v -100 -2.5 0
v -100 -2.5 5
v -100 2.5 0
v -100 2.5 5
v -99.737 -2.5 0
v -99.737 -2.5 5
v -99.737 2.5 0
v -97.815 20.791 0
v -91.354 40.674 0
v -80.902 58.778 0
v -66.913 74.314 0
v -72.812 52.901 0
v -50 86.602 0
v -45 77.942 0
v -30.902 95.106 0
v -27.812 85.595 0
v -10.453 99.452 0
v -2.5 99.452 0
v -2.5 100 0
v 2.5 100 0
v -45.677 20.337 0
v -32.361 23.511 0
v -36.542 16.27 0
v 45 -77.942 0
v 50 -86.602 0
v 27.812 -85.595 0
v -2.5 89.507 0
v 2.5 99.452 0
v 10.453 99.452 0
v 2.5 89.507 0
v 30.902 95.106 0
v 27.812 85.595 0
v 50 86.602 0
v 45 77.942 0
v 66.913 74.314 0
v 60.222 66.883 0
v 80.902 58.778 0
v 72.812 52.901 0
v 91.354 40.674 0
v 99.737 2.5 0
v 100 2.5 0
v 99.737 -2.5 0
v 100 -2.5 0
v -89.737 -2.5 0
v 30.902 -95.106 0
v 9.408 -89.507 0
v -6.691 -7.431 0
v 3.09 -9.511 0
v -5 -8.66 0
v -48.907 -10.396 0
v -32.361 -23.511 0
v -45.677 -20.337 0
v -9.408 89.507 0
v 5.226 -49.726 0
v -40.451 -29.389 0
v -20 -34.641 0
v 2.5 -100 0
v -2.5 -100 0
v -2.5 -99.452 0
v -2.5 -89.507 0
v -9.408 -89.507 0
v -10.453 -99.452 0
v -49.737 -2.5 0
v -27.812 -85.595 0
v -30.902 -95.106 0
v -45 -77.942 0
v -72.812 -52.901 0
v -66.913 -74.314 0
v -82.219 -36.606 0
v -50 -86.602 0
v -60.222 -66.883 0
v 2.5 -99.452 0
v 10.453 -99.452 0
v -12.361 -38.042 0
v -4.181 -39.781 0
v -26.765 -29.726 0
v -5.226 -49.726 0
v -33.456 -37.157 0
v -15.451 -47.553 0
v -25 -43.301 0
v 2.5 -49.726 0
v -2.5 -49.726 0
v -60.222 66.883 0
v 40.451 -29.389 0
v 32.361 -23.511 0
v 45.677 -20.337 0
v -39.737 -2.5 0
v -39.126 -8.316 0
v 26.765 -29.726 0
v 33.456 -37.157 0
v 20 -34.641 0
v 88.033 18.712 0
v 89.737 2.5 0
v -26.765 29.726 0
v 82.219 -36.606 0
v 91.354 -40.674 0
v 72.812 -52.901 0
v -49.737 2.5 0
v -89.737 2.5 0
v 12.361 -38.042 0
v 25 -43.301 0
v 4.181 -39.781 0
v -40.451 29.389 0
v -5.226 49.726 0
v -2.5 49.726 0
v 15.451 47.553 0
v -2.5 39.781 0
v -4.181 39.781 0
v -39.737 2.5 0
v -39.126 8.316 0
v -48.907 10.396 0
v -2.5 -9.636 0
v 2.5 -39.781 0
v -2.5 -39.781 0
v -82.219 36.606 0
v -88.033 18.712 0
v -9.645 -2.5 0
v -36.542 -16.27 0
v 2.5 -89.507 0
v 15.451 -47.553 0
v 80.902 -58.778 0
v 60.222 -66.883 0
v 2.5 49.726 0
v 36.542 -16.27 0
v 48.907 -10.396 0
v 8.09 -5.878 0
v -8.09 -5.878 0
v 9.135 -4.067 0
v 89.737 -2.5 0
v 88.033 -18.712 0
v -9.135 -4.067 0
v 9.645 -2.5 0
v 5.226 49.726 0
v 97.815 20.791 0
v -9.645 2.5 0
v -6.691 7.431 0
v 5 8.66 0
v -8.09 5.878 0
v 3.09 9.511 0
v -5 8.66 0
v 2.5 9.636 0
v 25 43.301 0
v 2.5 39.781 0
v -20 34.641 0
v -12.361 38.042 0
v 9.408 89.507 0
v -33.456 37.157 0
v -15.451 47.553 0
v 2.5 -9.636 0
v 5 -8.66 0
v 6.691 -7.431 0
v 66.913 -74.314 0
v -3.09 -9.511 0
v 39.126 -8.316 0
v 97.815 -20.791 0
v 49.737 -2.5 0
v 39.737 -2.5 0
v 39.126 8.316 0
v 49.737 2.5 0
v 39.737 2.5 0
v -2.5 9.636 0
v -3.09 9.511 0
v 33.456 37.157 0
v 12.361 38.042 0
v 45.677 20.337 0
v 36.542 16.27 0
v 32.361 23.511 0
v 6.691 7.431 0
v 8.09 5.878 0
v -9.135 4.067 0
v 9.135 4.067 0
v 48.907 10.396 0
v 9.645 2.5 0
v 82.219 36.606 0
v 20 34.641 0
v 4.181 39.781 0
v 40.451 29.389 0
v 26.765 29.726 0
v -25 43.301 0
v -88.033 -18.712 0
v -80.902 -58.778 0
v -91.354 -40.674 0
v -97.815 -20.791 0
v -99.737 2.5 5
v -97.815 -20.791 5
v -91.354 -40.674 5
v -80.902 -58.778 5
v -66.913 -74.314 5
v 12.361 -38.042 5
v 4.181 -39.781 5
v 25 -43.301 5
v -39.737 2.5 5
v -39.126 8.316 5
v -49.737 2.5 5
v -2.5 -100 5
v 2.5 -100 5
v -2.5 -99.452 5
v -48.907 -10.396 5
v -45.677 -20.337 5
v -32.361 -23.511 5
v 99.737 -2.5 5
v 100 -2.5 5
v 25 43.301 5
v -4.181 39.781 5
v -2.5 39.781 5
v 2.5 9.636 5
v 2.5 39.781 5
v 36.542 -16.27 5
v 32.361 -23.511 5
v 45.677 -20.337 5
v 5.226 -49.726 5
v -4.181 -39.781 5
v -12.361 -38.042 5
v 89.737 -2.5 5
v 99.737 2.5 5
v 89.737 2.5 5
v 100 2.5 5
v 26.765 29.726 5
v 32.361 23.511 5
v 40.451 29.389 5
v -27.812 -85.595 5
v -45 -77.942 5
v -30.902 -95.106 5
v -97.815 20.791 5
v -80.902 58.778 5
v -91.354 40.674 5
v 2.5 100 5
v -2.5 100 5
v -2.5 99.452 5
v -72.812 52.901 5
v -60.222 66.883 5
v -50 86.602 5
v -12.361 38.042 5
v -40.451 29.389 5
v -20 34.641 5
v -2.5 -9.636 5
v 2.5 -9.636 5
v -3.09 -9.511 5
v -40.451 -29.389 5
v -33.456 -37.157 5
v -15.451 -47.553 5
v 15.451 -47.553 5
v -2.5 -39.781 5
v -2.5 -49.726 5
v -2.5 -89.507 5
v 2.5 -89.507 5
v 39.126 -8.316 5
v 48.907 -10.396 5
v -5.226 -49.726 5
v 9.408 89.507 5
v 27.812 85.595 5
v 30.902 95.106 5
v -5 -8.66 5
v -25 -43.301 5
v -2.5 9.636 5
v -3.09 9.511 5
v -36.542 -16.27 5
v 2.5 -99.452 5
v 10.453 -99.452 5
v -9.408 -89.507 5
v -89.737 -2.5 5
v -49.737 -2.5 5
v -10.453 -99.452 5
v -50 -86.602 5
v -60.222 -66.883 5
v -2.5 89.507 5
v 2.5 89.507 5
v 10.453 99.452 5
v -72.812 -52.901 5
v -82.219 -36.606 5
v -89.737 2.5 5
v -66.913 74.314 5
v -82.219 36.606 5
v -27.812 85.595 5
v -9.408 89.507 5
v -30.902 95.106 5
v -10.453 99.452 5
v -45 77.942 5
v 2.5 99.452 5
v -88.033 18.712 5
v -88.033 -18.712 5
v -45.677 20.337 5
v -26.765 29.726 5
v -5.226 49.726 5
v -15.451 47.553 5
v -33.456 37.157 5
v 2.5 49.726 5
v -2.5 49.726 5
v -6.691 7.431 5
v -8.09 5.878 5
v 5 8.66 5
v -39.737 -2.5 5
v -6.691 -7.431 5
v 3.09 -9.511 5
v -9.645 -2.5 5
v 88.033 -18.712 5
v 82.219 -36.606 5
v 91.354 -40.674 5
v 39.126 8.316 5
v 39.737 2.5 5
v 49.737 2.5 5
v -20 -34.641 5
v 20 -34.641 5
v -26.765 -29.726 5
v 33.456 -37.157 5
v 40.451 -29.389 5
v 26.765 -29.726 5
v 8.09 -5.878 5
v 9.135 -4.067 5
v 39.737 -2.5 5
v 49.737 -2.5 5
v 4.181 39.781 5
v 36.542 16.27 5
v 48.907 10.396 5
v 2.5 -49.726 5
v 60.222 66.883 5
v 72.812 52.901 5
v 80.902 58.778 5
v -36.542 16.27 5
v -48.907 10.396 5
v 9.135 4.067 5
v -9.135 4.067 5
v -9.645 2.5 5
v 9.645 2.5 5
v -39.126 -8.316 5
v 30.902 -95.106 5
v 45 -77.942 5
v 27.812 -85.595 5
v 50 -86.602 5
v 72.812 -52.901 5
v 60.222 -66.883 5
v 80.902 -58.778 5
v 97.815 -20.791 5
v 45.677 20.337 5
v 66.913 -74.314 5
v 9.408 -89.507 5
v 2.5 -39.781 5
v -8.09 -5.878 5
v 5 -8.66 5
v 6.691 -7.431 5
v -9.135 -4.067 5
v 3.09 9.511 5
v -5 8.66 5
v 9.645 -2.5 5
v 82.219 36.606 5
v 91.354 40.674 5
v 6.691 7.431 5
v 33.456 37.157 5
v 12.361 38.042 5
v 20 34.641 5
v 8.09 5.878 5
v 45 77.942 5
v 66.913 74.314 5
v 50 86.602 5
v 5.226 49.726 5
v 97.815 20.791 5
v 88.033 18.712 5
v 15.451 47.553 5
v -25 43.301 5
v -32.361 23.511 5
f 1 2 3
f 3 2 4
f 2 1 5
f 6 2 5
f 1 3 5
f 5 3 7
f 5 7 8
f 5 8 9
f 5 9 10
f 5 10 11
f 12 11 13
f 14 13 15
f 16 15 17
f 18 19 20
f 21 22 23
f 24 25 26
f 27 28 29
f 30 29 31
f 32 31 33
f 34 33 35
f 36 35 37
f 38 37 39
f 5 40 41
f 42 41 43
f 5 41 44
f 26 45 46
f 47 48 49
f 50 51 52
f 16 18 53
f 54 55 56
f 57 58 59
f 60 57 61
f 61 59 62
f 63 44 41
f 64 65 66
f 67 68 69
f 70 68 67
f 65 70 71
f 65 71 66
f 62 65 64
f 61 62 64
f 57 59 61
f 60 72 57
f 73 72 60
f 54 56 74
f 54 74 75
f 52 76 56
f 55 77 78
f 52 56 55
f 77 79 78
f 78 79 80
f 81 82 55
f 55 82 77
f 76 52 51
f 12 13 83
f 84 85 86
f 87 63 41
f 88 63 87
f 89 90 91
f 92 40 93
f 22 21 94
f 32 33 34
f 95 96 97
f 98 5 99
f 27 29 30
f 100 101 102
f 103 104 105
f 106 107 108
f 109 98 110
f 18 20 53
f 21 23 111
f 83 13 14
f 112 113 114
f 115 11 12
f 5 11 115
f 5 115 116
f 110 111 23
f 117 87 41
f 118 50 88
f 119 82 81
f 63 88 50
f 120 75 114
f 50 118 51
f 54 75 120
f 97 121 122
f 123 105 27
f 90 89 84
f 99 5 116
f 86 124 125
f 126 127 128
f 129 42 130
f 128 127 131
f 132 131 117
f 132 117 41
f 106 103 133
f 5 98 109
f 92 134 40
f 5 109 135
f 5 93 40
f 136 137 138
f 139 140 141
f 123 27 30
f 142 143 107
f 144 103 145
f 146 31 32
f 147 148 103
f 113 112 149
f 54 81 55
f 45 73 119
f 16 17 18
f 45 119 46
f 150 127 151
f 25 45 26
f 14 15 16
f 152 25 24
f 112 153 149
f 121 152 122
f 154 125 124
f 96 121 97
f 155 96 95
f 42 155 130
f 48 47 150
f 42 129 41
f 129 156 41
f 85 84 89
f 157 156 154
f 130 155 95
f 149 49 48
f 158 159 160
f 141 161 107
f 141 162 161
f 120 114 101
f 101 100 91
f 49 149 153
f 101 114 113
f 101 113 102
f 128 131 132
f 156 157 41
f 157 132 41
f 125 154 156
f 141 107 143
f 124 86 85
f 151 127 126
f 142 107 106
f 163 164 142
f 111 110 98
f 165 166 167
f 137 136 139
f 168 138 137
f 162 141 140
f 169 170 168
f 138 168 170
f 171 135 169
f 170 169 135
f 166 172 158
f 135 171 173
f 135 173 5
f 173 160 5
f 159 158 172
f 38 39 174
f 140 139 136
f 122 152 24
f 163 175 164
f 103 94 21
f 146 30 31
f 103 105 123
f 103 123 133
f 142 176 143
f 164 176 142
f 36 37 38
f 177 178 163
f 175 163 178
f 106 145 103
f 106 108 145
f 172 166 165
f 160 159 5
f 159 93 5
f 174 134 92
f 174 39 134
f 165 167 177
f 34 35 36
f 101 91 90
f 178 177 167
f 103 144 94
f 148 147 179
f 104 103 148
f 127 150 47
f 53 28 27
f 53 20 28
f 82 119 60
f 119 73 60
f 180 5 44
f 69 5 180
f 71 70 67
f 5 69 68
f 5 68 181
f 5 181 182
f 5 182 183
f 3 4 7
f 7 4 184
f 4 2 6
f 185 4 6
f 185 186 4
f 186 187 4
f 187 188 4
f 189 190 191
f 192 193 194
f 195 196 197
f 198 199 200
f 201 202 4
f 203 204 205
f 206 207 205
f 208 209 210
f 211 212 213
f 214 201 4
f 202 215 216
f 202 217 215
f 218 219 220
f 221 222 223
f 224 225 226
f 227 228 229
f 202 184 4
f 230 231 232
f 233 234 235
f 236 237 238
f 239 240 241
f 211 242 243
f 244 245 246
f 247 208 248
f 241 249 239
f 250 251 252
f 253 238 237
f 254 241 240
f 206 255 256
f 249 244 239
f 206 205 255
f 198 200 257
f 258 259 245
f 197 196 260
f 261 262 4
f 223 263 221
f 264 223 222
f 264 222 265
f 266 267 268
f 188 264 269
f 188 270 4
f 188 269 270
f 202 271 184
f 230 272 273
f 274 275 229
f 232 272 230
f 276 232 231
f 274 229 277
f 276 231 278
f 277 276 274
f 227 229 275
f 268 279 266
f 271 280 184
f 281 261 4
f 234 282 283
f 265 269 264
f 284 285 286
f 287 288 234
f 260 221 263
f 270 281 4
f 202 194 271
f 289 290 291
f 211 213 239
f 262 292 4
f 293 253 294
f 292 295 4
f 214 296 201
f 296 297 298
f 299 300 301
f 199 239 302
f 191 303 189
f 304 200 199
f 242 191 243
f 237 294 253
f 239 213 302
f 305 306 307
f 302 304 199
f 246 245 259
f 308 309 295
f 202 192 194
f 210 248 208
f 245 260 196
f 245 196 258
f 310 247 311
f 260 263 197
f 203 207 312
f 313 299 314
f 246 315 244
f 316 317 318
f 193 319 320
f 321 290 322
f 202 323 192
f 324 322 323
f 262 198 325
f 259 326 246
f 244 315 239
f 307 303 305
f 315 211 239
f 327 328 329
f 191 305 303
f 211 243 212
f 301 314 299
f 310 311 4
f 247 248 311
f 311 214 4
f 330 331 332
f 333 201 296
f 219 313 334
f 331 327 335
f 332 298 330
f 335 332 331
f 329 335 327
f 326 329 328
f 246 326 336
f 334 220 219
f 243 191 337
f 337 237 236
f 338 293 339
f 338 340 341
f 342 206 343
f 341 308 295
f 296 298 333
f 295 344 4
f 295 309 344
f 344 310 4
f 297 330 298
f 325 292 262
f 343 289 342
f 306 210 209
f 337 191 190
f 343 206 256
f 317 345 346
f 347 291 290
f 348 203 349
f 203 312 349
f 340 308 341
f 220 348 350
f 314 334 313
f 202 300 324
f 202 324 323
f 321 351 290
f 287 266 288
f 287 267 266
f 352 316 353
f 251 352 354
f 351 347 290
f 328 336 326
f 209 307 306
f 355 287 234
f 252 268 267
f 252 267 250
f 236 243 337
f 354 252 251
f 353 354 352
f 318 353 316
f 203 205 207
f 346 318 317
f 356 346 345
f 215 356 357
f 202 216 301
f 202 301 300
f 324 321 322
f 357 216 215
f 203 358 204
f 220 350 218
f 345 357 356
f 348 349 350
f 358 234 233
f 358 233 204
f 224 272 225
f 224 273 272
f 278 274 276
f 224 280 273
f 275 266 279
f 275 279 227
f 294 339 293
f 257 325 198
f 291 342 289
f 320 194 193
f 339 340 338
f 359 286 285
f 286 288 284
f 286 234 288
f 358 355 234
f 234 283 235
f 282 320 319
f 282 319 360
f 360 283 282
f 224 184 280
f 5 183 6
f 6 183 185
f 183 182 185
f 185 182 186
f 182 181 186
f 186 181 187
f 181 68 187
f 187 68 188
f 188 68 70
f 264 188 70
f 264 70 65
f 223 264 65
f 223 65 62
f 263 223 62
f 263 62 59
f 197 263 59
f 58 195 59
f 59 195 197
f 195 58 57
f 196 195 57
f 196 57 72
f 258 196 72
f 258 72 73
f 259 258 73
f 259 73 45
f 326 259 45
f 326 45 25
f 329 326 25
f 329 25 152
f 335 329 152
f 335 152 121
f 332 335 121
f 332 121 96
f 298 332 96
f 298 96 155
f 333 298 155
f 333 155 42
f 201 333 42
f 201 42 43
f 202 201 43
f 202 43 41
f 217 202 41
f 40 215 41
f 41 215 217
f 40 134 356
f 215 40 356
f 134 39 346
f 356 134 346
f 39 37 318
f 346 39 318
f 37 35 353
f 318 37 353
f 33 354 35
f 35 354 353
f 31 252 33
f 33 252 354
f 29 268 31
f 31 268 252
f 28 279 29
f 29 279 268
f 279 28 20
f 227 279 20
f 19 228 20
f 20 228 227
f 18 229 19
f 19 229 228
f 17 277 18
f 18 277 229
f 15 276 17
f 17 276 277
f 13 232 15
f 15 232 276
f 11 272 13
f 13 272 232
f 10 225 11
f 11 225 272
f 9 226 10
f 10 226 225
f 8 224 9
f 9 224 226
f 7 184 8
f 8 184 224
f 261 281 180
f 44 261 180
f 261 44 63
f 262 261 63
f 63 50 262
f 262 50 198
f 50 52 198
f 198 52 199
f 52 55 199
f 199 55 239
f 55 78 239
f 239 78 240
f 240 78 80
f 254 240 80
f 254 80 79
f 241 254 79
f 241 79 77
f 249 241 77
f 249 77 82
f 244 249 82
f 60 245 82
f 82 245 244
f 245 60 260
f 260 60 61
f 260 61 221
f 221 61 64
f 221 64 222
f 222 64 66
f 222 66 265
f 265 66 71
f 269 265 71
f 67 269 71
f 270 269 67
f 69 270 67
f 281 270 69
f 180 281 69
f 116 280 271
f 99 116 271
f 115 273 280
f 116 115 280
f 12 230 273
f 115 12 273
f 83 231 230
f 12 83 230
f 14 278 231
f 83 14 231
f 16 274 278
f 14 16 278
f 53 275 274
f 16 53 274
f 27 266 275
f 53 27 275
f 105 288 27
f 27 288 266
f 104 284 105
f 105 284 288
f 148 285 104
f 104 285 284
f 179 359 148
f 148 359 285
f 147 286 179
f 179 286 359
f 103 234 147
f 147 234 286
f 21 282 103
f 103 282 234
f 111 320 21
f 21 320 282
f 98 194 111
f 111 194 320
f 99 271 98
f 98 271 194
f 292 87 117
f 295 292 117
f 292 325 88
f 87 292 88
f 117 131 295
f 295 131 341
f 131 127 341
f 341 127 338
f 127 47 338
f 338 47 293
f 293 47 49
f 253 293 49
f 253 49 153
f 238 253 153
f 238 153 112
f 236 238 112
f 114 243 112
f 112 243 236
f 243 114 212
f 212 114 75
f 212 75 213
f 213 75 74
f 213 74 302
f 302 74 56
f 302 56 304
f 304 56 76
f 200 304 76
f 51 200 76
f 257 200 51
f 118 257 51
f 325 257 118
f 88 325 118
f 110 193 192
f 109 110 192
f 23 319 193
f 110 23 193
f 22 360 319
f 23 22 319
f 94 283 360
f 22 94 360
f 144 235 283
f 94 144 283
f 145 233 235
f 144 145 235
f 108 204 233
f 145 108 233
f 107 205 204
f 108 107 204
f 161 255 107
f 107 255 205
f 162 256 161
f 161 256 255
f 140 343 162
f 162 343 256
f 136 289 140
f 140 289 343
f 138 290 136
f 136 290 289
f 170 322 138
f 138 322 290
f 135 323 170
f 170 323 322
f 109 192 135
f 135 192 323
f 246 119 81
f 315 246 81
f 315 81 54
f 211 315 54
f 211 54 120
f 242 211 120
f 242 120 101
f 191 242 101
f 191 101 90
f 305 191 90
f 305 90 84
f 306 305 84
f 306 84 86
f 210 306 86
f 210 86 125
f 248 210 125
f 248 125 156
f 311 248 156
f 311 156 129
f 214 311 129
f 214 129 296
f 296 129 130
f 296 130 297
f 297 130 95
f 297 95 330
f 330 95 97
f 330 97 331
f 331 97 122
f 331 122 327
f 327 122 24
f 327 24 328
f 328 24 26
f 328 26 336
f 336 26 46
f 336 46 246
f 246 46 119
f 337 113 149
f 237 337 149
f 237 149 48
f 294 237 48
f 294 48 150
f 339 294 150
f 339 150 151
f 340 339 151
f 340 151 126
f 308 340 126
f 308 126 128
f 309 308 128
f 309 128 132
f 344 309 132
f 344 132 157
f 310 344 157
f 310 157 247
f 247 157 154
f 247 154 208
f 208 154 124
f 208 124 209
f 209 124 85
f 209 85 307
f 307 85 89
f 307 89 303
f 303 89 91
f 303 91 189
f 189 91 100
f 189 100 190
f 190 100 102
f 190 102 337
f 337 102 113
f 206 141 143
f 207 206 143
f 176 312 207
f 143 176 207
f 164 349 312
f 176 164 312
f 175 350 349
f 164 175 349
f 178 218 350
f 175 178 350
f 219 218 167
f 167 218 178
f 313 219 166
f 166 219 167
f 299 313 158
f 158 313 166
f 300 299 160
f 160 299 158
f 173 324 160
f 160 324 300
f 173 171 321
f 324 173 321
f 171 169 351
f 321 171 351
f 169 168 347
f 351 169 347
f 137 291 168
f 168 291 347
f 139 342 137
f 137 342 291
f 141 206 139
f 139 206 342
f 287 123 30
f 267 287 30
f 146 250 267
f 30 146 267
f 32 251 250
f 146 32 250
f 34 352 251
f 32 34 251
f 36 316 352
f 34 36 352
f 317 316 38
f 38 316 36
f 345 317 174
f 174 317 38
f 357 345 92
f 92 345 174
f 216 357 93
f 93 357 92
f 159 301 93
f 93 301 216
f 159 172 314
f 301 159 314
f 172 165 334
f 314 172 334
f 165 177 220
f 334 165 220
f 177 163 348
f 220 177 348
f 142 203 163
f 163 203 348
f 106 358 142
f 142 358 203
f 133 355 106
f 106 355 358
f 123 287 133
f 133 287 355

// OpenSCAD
translate([-100,-2.5,0]) {cube([200,5,5]);}
translate([-2.5, -100,0]) {cube([5,200,5]);}
cylinder(5, r=10);

difference() {
	cylinder(5, r=50);
	cylinder(5, r=40);
}

difference() {
	cylinder(5, r=100);
	cylinder(5, r=90);
}
